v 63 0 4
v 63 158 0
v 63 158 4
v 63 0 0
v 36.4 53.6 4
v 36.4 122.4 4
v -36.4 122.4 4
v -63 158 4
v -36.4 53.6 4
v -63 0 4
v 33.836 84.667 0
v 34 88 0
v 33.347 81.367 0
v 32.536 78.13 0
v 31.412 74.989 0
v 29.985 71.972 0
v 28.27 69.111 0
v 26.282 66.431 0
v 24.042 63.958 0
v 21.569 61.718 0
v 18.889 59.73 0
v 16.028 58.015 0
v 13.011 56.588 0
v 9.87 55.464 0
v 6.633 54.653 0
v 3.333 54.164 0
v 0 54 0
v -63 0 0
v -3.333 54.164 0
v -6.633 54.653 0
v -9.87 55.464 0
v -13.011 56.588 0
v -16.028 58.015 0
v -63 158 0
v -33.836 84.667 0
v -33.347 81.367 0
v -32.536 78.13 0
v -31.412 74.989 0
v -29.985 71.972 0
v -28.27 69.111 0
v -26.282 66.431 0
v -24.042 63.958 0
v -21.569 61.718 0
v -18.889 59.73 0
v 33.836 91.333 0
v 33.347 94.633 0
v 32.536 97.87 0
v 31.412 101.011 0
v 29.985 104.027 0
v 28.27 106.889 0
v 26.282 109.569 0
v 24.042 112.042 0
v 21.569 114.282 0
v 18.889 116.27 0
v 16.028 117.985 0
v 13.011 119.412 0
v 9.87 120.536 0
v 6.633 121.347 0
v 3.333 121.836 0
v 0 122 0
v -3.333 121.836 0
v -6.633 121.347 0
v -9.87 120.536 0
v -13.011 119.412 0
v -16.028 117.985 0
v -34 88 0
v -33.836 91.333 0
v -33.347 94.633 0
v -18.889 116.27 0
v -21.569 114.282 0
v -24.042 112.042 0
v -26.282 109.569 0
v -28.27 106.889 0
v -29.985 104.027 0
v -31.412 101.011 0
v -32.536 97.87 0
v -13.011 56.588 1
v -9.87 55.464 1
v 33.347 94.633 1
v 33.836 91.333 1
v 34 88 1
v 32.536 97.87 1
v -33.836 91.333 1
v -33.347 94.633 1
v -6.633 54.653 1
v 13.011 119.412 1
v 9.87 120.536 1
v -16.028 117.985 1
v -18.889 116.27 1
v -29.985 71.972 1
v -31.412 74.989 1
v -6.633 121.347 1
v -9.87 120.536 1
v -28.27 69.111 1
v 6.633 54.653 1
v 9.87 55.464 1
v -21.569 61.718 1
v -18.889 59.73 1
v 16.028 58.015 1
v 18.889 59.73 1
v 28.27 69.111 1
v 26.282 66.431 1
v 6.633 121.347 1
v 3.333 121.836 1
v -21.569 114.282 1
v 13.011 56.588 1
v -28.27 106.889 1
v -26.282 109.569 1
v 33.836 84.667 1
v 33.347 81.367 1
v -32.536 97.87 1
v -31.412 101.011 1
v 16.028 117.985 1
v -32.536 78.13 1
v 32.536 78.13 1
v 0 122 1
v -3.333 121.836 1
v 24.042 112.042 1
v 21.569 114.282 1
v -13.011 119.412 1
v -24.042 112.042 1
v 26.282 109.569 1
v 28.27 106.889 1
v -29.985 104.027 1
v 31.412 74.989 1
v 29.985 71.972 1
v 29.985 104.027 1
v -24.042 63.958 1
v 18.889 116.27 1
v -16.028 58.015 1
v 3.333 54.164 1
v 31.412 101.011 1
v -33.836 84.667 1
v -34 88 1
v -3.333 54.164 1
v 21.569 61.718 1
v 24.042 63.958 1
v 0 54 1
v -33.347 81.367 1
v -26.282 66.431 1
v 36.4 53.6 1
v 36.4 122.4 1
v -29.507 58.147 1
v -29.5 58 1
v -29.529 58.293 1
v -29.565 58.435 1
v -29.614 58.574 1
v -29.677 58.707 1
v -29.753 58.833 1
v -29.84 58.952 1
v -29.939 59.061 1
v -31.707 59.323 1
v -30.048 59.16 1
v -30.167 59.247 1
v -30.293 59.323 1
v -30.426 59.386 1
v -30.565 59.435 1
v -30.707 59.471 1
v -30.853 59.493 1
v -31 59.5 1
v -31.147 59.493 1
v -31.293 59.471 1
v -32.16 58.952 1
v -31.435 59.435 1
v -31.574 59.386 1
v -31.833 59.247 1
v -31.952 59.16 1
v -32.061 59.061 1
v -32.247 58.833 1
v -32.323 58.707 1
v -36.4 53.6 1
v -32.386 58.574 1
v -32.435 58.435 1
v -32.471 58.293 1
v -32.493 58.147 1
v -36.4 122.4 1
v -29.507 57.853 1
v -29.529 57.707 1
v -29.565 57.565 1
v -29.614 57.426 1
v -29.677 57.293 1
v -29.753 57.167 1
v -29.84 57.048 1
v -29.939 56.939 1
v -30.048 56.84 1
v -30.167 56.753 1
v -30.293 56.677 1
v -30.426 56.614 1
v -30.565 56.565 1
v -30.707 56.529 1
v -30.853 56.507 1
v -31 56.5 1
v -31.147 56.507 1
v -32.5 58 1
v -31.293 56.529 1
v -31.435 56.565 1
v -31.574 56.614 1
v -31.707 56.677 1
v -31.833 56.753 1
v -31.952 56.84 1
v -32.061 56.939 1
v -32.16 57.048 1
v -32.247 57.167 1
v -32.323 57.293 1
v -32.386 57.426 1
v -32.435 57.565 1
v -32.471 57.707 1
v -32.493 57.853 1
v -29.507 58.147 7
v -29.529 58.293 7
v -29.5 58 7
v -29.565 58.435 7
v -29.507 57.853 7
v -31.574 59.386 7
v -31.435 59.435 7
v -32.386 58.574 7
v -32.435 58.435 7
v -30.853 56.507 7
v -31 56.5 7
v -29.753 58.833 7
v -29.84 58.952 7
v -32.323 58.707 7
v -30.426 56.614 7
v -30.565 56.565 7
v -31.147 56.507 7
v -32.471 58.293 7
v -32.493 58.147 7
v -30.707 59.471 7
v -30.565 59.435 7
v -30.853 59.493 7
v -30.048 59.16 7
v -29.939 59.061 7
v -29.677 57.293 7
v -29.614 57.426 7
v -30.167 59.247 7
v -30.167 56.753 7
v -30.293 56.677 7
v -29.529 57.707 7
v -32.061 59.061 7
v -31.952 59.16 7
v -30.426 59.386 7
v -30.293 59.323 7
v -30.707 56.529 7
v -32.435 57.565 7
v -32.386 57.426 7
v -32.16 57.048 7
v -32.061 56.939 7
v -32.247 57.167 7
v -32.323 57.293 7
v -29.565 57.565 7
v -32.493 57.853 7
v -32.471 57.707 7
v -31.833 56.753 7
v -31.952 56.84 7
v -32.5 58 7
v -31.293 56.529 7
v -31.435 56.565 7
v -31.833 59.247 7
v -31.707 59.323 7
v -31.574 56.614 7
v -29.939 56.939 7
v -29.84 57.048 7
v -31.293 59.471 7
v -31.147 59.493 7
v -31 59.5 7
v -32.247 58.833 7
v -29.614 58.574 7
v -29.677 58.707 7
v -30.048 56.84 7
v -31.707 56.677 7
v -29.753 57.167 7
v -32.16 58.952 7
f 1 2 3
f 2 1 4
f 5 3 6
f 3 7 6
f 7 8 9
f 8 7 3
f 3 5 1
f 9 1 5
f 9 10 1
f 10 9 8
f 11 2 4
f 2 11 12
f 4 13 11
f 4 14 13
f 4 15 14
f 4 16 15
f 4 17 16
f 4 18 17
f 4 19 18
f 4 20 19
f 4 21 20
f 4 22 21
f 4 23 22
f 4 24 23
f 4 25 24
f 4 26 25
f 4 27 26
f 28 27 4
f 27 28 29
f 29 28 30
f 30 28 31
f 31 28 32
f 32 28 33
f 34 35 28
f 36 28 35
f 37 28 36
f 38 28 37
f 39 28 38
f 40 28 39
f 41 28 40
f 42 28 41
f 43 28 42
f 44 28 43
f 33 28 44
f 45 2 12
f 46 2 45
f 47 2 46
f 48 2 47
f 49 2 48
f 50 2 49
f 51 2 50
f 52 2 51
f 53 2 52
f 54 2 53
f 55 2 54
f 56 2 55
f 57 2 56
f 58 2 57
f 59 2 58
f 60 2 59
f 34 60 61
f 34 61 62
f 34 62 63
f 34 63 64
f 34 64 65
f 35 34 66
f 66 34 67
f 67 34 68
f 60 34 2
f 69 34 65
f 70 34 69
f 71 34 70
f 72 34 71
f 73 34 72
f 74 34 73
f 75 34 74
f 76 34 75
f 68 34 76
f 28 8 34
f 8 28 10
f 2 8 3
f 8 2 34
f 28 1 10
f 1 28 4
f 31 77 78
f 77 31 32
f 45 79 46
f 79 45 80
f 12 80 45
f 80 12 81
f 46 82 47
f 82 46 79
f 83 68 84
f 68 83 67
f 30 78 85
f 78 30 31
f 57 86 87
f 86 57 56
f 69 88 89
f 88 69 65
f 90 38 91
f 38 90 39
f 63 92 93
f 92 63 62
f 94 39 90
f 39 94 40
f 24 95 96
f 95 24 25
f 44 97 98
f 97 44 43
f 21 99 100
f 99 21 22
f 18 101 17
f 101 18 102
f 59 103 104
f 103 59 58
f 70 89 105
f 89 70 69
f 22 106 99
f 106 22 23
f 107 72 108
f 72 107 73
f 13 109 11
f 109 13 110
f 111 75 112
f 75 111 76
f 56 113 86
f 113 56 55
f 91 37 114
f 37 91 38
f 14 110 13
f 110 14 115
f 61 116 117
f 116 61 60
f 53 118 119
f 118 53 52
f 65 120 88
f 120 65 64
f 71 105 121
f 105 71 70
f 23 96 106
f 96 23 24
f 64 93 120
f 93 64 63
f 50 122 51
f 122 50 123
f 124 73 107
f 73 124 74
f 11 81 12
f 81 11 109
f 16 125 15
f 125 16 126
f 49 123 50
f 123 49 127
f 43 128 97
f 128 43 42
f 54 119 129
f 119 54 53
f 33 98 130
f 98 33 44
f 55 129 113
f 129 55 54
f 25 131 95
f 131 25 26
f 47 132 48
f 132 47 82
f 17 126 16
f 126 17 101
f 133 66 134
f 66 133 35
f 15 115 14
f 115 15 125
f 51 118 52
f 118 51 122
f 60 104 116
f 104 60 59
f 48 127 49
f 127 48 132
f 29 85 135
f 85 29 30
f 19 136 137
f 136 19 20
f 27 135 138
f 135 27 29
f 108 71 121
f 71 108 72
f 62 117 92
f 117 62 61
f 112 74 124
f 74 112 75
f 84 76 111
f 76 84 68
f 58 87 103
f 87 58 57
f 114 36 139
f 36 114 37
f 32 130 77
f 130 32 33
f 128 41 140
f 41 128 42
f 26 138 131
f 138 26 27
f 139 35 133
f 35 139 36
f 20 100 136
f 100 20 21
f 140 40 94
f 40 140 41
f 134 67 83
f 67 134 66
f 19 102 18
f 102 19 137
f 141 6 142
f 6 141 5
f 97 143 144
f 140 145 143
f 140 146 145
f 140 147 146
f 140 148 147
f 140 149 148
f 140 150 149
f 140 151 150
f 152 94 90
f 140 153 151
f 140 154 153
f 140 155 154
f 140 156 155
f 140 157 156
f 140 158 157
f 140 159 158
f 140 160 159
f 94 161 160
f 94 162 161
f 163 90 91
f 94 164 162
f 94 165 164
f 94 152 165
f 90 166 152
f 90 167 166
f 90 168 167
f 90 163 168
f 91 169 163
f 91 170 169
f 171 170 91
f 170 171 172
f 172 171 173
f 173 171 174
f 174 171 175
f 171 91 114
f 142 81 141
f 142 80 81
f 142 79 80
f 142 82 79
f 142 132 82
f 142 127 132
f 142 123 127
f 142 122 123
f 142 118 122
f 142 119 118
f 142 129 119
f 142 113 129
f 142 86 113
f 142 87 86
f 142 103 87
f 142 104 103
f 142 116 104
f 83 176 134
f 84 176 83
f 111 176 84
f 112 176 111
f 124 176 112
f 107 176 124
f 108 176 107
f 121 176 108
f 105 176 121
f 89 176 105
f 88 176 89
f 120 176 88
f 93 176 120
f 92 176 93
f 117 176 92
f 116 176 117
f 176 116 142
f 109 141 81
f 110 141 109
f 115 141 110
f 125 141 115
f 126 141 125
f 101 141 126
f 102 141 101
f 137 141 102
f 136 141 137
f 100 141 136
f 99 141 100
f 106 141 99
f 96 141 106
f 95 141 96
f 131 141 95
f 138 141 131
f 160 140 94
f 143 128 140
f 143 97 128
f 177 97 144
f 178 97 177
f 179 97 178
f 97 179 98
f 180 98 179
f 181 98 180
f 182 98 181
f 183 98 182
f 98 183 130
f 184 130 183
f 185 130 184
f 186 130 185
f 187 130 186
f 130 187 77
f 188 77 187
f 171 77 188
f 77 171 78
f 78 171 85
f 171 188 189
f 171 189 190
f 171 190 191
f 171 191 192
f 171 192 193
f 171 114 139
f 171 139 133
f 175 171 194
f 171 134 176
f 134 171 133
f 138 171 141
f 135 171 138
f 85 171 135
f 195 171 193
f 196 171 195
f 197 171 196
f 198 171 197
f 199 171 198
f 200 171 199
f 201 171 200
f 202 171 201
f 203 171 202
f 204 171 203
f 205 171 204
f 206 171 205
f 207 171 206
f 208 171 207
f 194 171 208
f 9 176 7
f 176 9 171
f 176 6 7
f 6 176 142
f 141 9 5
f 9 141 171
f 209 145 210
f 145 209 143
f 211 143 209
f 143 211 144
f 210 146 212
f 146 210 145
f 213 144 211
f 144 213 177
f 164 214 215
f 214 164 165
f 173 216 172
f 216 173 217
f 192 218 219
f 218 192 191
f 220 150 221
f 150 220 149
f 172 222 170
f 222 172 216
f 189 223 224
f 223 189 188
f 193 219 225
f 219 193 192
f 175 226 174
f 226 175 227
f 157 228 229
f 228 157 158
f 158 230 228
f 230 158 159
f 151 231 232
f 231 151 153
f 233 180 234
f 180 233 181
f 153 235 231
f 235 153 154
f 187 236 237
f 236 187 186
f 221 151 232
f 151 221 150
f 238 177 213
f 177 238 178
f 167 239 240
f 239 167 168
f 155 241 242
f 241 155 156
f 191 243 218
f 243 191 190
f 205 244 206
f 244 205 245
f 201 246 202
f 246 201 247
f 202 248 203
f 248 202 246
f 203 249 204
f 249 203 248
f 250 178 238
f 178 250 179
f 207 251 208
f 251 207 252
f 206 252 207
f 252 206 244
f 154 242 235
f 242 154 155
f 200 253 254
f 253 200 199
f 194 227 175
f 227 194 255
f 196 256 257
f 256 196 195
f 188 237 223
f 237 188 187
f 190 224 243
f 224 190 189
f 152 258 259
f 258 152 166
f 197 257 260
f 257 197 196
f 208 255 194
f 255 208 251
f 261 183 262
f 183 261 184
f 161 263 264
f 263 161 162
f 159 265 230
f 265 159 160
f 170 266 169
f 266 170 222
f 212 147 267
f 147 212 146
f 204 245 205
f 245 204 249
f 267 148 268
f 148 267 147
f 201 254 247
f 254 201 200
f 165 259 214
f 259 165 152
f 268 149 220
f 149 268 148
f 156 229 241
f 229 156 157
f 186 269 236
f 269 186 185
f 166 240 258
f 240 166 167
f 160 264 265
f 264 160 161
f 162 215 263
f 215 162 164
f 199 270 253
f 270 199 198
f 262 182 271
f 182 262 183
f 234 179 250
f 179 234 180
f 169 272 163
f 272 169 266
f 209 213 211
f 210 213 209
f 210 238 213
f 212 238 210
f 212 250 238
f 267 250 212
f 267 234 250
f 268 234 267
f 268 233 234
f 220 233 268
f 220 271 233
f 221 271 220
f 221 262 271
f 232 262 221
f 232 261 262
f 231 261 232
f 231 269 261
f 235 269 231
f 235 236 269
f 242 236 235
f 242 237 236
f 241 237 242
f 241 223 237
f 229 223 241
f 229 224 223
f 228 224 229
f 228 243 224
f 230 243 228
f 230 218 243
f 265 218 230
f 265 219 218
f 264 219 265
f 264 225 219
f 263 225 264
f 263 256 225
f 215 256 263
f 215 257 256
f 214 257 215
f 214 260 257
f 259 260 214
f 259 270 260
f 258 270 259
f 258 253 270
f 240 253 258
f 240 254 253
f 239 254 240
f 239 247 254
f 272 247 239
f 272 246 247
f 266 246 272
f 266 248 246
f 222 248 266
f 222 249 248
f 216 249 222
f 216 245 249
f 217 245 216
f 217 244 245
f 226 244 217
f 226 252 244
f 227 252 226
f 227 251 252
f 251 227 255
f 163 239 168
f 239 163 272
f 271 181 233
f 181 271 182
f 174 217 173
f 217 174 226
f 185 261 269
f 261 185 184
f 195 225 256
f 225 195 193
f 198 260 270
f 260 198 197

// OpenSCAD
// file: parts/shutter_actuator.scad
// shutter_actuator.scad — fixed pin that engages the MD shutter tab.
//
// Produces a positive cylinder intended to be unioned with the tray base.
// The pin runs from the bottom of the tray base (Z = 0) up to (pocket-floor +
// pin_h), so its lower portion fuses with the pocket floor and its upper
// portion stands proud inside the pocket — engaging the cartridge shutter
// tab as the MD is slid into final position.
//
// Pin position is derived from the MD pocket's near corner (the loading-side
// corner of the cartridge). Offsets are approximate; refine against a
// physical Sony MD cartridge.

include <../dimensions.scad>;

module shutter_actuator(
    spindle_to_bezel = SPINDLE_TO_BEZEL,
    base_thickness = TRAY_BASE_THICKNESS,
    pocket_depth = MD_POCKET_DEPTH,
    pin_dia = SHUTTER_PIN_DIA,
    pin_h = SHUTTER_PIN_H,
    tab_x_offset = SHUTTER_TAB_X_OFFSET,
    tab_y_offset = SHUTTER_TAB_Y_OFFSET
) {
    pin_x = -MD_W / 2 + tab_x_offset;
    pin_y = spindle_to_bezel - MD_D / 2 + tab_y_offset;
    floor_z = base_thickness - pocket_depth;

    translate([pin_x, pin_y, 0])
        cylinder(h = floor_z + pin_h, d = pin_dia);
}

shutter_actuator();
// file: parts/md_pocket.scad
// md_pocket.scad — MD cartridge recess, sized for a 72 × 68 × 5 mm Sony MD.
//
// Produces a negative volume intended to be subtracted from the tray base.
// Pocket is centred laterally on X = 0 and over the spindle on Y, so the
// cartridge sits centred over the spindle position.
//
// MD orientation in the pocket:
//   - MD_W (72 mm, shutter-slide axis) along X
//   - MD_D (68 mm)                      along Y

include <../dimensions.scad>;

module md_pocket(
    spindle_to_bezel = SPINDLE_TO_BEZEL,
    base_thickness = TRAY_BASE_THICKNESS,
    pocket_depth = MD_POCKET_DEPTH,
    clearance = FIT_CLEARANCE
) {
    pocket_w = MD_W + 2 * clearance;
    pocket_d = MD_D + 2 * clearance;
    // The cube extends 1 mm above the tray top to guarantee a clean cut
    // through the top surface when this volume is subtracted.
    translate([
        -pocket_w / 2,
        spindle_to_bezel - pocket_d / 2,
        base_thickness - pocket_depth
    ])
        cube([pocket_w, pocket_d, pocket_depth + 1]);
}

md_pocket();
// file: parts/tray_base.scad
// tray_base.scad — flat tray plate with central spindle clearance hole.
//
// Coordinate system (shared across all tray parts):
//   - Origin: front-bezel-centre on the bottom face of the tray base
//   - +X: lateral (along bezel width)
//   - +Y: into the drive (away from bezel)
//   - +Z: up (out of the tray plane)
//
// Footprint defaults to the SFF-8551 (5.25" half-height) inner tray dimensions
// from dimensions.scad. Pass smaller values for slim laptop ODD form factor.

include <../dimensions.scad>;

module tray_base(
    inner_w = TRAY_INNER_W,
    inner_d = TRAY_INNER_D,
    thickness = TRAY_BASE_THICKNESS,
    spindle_to_bezel = SPINDLE_TO_BEZEL,
    spindle_clearance_r = SPINDLE_CLEARANCE_R
) {
    difference() {
        translate([-inner_w / 2, 0, 0])
            cube([inner_w, inner_d, thickness]);

        translate([0, spindle_to_bezel, -1])
            cylinder(h = thickness + 2, r = spindle_clearance_r);
    }
}

tray_base();
// file: dimensions.scad
// dimensions.scad — single source of truth for all tray geometry constants.
//
// All values in millimetres unless otherwise noted.
// Sources:
//   - CD/DVD drive envelope: SFF-8551 (5.25" half-height) and laptop slim ODD (9.5 mm)
//   - CD disc geometry: ECMA-130
//   - MiniDisc cartridge: Sony MiniDisc specification (MD)
//   - Issues weyucou/minidisc-tray#1 (3D modeling format research) and
//     weyucou/minidisc-tray#2 (CD/DVD tray dimensions)


// ---------------------------------------------------------------------------
// CD/DVD drive envelope (target form factor)
// ---------------------------------------------------------------------------

// Primary target: 5.25" half-height (SFF-8551) drive body.
DRIVE_BODY_W = 146.1;   // outer width
DRIVE_BODY_H = 41.3;    // outer height
DRIVE_BODY_D = 170;     // outer depth (typical; range 170–203)

// Slim laptop ODD (9.5 mm) — secondary parametric variant.
SLIM_BODY_W = 128;
SLIM_BODY_H = 9.5;
SLIM_BODY_D = 127;


// ---------------------------------------------------------------------------
// CD tray envelope (the cavity the printed tray must fit into)
// ---------------------------------------------------------------------------

// Inner tray usable width — the lateral envelope between the tray side walls.
// Derived in #2: ~63 mm from spindle centre to each side wall.
TRAY_INNER_W = 126;

// Spindle-centre-to-front-bezel distance.
// Range observed across donor drives: 80–95 mm.
// Default = mid-range; UPDATE after physical measurement of the actual donor drive.
SPINDLE_TO_BEZEL = 88;

// CD program area (informational — used to validate spindle clearance).
// ECMA-130: program area lies between r=25 and r=58 mm.
CD_DISC_DIA = 120;
CD_CENTER_HOLE = 15;
CD_CLAMP_R_MIN = 26;
CD_CLAMP_R_MAX = 33;

// Inner tray usable depth — derived from spindle-to-bezel + CD radius + rear margin.
// Matches typical 5.25" half-height CD tray depth. Refine when donor drive measured.
TRAY_INNER_D = SPINDLE_TO_BEZEL + CD_DISC_DIA / 2 + 10;

// Spindle clearance hole radius — clears the CD spindle hub / clamp area.
// Sized at CD_CLAMP_R_MAX + 1 mm safety; also clears the MD internal disc edge.
SPINDLE_CLEARANCE_R = CD_CLAMP_R_MAX + 1;


// ---------------------------------------------------------------------------
// MiniDisc cartridge (the part the tray must position and shutter-actuate)
// ---------------------------------------------------------------------------

// Cartridge outer dimensions — Sony MD spec.
MD_W = 72;   // width  (along shutter slide axis)
MD_D = 68;   // depth  (perpendicular to shutter slide)
MD_H = 5;    // thickness

// Internal disc — used for spindle-clearance hole sizing and centring checks.
MD_DISC_DIA = 64;
MD_CENTER_HOLE = 11;


// ---------------------------------------------------------------------------
// Print and fit tolerances
// ---------------------------------------------------------------------------

// Per-side print clearance applied to mating surfaces (tray-to-cavity, MD pocket).
// Tuned for AFINIA H400+ FDM with default Afinia Studio profile.
FIT_CLEARANCE = 0.4;

// OpenSCAD render facet count for circular features.
// Higher = smoother curves at the cost of render time.
$fn = 64;


// ---------------------------------------------------------------------------
// Tray geometry (design constants)
// ---------------------------------------------------------------------------

// Tray base plate thickness — chosen for FDM stiffness across the full footprint.
// Must exceed MD_POCKET_DEPTH so the pocket leaves a continuous floor.
TRAY_BASE_THICKNESS = 4.0;

// MD pocket recess depth — how far the cartridge sits below the tray surface.
// MD_H = 5 mm; a 3 mm recess leaves the cartridge ~2 mm proud, easy to grip.
MD_POCKET_DEPTH = 3.0;

// Shutter actuator pin geometry — engages the MD cartridge shutter tab from
// inside the pocket as the cartridge is slid into final position.
SHUTTER_PIN_DIA = 3.0;
SHUTTER_PIN_H = 6.0;

// Shutter tab engagement position, measured from the leading corner of the
// MD pocket. Approximate; refine against a physical Sony MD cartridge.
SHUTTER_TAB_X_OFFSET = 5.0;
SHUTTER_TAB_Y_OFFSET = 4.0;
// main file
// tray.scad — composed tray solid: base + MD pocket + shutter actuator.
//
// Produces a single solid body representing the complete printable tray.
// Render with:
//   openscad -o models/export/tray.stl models/src/tray.scad

include <dimensions.scad>;
use <parts/tray_base.scad>;
use <parts/md_pocket.scad>;
use <parts/shutter_actuator.scad>;

union() {
    difference() {
        tray_base();
        md_pocket();
    }
    shutter_actuator();
}
